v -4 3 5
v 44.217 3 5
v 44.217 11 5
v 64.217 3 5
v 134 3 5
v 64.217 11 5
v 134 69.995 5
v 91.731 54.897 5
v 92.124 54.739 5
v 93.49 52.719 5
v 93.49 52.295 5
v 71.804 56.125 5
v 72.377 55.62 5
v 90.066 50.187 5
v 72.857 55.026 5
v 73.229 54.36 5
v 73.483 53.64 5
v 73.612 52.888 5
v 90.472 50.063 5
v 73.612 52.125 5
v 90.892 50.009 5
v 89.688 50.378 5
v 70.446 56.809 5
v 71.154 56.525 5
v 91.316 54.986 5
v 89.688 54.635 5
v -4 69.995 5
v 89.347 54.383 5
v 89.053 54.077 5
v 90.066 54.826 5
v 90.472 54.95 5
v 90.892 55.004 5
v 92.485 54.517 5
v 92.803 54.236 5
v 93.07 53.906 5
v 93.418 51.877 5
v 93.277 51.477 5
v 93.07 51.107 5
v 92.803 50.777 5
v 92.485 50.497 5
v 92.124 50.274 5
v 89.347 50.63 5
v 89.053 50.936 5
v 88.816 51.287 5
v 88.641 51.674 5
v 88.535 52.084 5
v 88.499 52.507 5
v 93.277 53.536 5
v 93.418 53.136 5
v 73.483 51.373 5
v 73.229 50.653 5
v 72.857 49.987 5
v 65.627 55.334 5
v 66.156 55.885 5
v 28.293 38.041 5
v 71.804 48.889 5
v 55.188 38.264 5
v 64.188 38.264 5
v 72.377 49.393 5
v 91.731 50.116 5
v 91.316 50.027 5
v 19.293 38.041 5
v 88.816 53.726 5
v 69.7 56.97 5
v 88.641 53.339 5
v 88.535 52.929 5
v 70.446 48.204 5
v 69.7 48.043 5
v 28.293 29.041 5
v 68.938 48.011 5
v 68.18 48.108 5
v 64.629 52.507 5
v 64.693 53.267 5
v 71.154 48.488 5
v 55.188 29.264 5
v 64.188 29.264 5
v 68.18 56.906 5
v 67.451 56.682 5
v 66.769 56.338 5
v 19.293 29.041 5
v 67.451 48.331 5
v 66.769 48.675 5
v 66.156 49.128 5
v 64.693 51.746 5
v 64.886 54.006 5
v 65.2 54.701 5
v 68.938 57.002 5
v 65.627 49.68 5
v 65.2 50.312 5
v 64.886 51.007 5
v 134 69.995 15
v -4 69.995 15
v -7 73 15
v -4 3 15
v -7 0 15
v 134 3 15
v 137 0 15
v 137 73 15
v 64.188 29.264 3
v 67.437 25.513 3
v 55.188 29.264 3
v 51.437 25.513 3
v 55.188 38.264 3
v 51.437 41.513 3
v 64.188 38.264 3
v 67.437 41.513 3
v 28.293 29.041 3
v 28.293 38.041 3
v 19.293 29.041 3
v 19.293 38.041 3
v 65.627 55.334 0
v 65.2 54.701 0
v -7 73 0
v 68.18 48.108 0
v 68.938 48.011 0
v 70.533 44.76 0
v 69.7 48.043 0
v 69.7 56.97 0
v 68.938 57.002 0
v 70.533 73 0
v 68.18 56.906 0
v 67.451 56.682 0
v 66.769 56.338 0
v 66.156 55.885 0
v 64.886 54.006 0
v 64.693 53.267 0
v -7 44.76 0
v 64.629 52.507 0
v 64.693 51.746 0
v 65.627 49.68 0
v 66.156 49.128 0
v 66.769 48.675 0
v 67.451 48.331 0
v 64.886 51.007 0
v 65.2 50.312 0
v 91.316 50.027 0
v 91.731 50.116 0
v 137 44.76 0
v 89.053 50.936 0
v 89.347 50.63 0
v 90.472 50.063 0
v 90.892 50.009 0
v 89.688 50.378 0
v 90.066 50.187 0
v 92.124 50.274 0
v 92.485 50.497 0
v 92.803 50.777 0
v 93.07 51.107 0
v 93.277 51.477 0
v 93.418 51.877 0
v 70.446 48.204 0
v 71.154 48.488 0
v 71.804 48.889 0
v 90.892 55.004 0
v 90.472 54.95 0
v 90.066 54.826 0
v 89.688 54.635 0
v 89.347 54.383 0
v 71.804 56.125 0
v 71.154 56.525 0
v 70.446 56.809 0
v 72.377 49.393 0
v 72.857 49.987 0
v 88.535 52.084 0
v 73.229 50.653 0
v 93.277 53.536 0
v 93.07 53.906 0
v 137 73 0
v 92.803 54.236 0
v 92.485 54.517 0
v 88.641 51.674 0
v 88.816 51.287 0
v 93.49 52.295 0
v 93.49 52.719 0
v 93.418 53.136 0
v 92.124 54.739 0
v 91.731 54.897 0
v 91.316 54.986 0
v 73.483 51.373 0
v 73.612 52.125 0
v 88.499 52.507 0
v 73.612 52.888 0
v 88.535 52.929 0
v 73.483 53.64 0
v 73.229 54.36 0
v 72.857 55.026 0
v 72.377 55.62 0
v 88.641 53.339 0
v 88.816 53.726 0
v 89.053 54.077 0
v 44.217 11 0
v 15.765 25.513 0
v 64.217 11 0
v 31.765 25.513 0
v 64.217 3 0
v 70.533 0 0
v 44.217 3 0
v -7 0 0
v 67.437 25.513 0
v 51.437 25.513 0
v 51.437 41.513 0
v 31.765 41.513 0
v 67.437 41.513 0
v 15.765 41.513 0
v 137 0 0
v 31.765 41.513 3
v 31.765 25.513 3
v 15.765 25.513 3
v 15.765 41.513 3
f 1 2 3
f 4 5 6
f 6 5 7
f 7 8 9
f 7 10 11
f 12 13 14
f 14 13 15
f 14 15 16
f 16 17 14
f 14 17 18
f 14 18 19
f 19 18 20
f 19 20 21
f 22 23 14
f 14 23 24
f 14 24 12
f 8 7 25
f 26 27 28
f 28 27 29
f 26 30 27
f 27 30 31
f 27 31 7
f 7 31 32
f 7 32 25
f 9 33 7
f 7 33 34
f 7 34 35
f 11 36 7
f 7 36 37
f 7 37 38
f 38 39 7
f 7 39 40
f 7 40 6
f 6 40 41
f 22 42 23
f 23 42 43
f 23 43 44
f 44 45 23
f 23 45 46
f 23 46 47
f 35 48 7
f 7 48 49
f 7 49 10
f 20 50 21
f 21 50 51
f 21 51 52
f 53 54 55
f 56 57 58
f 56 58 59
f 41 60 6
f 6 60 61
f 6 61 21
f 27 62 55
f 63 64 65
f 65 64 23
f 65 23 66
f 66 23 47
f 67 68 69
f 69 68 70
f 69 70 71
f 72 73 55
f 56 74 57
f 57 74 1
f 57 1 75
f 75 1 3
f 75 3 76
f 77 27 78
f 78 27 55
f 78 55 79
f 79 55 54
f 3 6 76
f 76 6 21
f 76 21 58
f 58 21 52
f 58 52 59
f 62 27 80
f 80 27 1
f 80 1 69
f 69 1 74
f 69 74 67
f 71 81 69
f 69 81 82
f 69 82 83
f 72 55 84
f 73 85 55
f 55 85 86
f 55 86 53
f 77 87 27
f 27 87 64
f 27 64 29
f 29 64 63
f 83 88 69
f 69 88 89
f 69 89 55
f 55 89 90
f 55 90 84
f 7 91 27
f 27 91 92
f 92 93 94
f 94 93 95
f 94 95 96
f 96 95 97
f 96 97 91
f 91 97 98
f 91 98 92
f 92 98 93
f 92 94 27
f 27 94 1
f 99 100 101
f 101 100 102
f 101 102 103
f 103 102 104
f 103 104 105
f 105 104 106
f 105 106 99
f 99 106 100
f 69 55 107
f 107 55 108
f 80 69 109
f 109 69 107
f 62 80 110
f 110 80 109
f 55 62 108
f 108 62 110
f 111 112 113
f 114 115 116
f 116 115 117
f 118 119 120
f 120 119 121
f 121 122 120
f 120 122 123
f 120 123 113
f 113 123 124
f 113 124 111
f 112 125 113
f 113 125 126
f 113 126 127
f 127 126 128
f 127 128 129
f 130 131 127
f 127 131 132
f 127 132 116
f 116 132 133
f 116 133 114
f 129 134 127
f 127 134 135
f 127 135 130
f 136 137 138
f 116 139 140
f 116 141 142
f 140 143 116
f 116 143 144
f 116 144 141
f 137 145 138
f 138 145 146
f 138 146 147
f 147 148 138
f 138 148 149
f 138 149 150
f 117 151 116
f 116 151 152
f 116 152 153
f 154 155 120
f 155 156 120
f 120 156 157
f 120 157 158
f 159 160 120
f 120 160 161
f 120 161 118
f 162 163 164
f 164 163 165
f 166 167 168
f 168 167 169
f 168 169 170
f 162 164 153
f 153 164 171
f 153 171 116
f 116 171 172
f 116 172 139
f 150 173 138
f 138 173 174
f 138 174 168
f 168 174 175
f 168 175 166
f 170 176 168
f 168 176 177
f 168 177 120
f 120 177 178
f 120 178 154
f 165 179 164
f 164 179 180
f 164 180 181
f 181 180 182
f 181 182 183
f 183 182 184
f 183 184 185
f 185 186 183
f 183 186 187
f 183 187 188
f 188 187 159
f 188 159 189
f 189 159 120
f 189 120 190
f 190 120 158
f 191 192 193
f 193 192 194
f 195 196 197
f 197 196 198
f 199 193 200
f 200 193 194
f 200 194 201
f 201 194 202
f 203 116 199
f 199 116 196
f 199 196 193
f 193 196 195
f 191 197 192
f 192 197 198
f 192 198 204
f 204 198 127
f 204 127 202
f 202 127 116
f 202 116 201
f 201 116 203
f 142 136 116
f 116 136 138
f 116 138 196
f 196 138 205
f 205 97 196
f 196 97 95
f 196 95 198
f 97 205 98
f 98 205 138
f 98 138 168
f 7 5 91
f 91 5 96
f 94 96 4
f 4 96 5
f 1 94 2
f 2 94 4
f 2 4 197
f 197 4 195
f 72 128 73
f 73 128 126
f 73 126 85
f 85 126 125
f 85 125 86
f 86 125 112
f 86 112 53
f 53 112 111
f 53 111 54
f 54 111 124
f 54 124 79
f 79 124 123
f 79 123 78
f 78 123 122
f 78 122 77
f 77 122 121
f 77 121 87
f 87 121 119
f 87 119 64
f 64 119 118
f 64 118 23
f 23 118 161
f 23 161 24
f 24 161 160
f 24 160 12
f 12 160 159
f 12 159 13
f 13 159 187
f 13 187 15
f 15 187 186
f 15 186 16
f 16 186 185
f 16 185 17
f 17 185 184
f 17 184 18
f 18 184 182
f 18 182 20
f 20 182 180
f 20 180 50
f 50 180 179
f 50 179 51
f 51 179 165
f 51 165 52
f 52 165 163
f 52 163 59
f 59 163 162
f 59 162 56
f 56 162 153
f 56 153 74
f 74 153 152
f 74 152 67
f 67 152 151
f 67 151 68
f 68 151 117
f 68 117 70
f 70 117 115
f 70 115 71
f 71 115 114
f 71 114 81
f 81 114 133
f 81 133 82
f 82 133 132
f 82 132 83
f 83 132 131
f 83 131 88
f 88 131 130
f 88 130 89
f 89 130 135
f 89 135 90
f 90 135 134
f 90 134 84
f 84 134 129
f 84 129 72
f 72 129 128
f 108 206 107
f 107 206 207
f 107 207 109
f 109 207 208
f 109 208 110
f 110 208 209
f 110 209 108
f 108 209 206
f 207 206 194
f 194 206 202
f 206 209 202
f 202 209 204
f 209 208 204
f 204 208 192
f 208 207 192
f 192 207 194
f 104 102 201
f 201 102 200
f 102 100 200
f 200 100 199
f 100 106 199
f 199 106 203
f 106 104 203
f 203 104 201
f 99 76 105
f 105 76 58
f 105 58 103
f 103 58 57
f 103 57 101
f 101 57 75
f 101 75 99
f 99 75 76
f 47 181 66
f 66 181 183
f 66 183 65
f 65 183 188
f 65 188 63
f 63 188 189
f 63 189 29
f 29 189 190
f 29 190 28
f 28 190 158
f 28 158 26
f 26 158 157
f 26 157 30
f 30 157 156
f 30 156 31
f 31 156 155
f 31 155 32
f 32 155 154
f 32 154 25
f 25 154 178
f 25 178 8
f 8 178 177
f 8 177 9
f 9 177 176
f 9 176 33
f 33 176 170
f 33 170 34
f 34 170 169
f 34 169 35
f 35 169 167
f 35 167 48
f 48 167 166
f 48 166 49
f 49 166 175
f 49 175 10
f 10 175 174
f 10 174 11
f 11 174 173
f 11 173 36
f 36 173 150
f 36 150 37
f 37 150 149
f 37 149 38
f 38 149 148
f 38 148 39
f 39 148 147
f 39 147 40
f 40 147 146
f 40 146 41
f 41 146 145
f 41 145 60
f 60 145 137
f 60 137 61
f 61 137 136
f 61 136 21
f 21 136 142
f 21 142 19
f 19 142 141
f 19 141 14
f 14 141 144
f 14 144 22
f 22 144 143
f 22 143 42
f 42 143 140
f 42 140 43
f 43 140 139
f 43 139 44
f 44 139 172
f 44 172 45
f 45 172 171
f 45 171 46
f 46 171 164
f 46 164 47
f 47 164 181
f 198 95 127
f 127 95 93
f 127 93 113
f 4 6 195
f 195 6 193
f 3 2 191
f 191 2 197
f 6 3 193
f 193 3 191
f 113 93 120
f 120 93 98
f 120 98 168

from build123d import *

# Parameters (mm, degrees)
ESQUISSE1_W              = 137
ESQUISSE1_H              = 66
BOSS_EXTRU_2_DEPTH       = 15
ESQUISSE3_W              = 131
ESQUISSE3_H              = 60
ENL_V_MAT_EXTRU_1_DEPTH  = 10
ESQUISSE5_W              = 12
ESQUISSE5_H              = 12
ENL_V_MAT_EXTRU_2_DEPTH  = 10
ESQUISSE6_W              = 12
ESQUISSE6_H              = 12
ENL_V_MAT_EXTRU_3_DEPTH  = 10
ESQUISSE7_W              = 15
ESQUISSE7_H              = 3
ENL_V_MAT_EXTRU_4_DEPTH  = 10
ESQUISSE8_R              = 4.5
ENL_V_MAT_EXTRU_5_DEPTH  = 10
ESQUISSE10_W             = 3
ESQUISSE10_H             = 8
BOSS_EXTRU_3_DEPTH       = 4
ESQUISSE12_W             = 2
ESQUISSE12_H             = 6
ENL_V_MAT_EXTRU_6_DEPTH  = 4
ESQUISSE13_W             = 3
ESQUISSE13_H             = 8
BOSS_EXTRU_4_DEPTH       = 4
ESQUISSE14_W             = 2
ESQUISSE14_H             = 6
ENL_V_MAT_EXTRU_7_DEPTH  = 4
ESQUISSE16_W             = 3
ESQUISSE16_H             = 8
BOSS_EXTRU_5_DEPTH       = 4
ESQUISSE17_W             = 3
ESQUISSE17_H             = 8
BOSS_EXTRU_6_DEPTH       = 4
ESQUISSE19_W             = 2
ESQUISSE19_H             = 6
ENL_V_MAT_EXTRU_9_DEPTH  = 3
ESQUISSE20_W             = 2
ESQUISSE20_H             = 6
ENL_V_MAT_EXTRU_10_DEPTH = 3
ESQUISSE21_R             = 1.5
ENL_V_MAT_EXTRU_12_DEPTH = 21
ESQUISSE22_W             = 3
ESQUISSE22_H             = 8
ENL_V_MAT_EXTRU_13_DEPTH = 4
ESQUISSE23_W             = 3
ESQUISSE23_H             = 8
ENL_V_MAT_EXTRU_14_DEPTH = 4
ESQUISSE24_W             = 3
ESQUISSE24_H             = 8
ENL_V_MAT_EXTRU_15_DEPTH = 4
ESQUISSE25_W             = 3
ESQUISSE25_H             = 8
ENL_V_MAT_EXTRU_16_DEPTH = 4
ESQUISSE28_W             = 12
ESQUISSE28_H             = 12
BOSS_EXTRU_7_DEPTH       = 5
ESQUISSE30_W             = 9
ESQUISSE30_H             = 9
ENL_V_MAT_EXTRU_17_DEPTH = 2.5
ESQUISSE32_W             = 9
ESQUISSE32_H             = 9
ENL_V_MAT_EXTRU_18_DEPTH = 8.5
ESQUISSE33_W             = 16
ESQUISSE33_H             = 16
ENL_V_MAT_EXTRU_19_DEPTH = 3
ESQUISSE34_W             = 16
ESQUISSE34_H             = 16
ENL_V_MAT_EXTRU_20_DEPTH = 3
ESQUISSE35_W             = 9
ESQUISSE35_H             = 9
ENL_V_MAT_EXTRU_21_DEPTH = 3
ESQUISSE36_W             = 12
ESQUISSE36_H             = 12
BOSS_EXTRU_8_DEPTH       = 5
ESQUISSE37_R             = 2.5
ENL_V_MAT_EXTRU_22_DEPTH = 5
ESQUISSE39_W             = 3
ESQUISSE39_H             = 60
ENL_V_MAT_EXTRU_23_DEPTH = 10
ESQUISSE40_W             = 5
ESQUISSE40_H             = 66
BOSS_EXTRU_9_DEPTH       = 7
ESQUISSE41_W             = 3
ESQUISSE41_H             = 66
BOSS_EXTRU_10_DEPTH      = 10
ESQUISSE42_W             = 4
ESQUISSE42_H             = 3
BOSS_EXTRU_11_DEPTH      = 10
ESQUISSE43_W             = 4
ESQUISSE43_H             = 3
BOSS_EXTRU_12_DEPTH      = 10
ESQUISSE44_W             = 20
ESQUISSE44_H             = 8
ENL_V_MAT_EXTRU_24_DEPTH = 10
ESQUISSE46_W             = 138
ESQUISSE46_H             = 3
ENL_V_MAT_EXTRU_25_DEPTH = 10
ESQUISSE47_W             = 141
ESQUISSE47_H             = 5
BOSS_EXTRU_13_DEPTH      = 7
ESQUISSE48_W             = 141
ESQUISSE48_H             = 3.004636282
BOSS_EXTRU_14_DEPTH      = 10
ESQUISSE49_W             = 3
ESQUISSE49_H             = 3.995363718
BOSS_EXTRU_15_DEPTH      = 10
ESQUISSE50_W             = 3
ESQUISSE50_H             = 15
BOSS_EXTRU_16_DEPTH      = 7


with BuildPart() as part:
    # Esquisse1 → Boss.-Extru.2 (new body)
    with BuildSketch(Plane.XY):
        with Locations((68.5, 33)):
            Rectangle(ESQUISSE1_W, ESQUISSE1_H)
    extrude(amount=BOSS_EXTRU_2_DEPTH)

    # Esquisse3 → Enlèv. mat.-Extru.1 (cut)
    with BuildSketch(Plane.XY.offset(15)):
        with Locations((68.5, 33)):
            Rectangle(ESQUISSE3_W, ESQUISSE3_H)
    extrude(amount=-ENL_V_MAT_EXTRU_1_DEPTH, mode=Mode.SUBTRACT)

    # Esquisse5 → Enlèv. mat.-Extru.2 (cut)
    with BuildSketch(Plane(origin=(0, 0, 0), x_dir=(-1, 0, 0), z_dir=(0, 0, -1))):
        with Locations((-14.887820014, 52.506524993)):
            Rectangle(ESQUISSE5_W, ESQUISSE5_H)
    extrude(amount=-ENL_V_MAT_EXTRU_2_DEPTH, mode=Mode.SUBTRACT)

    # Esquisse6 → Enlèv. mat.-Extru.3 (cut)
    with BuildSketch(Plane(origin=(0, 0, 0), x_dir=(-1, 0, 0), z_dir=(0, 0, -1))):
        with Locations((-42.758546676, 52.506524993)):
            Rectangle(ESQUISSE6_W, ESQUISSE6_H)
    extrude(amount=-ENL_V_MAT_EXTRU_3_DEPTH, mode=Mode.SUBTRACT)

    # Esquisse7 → Enlèv. mat.-Extru.4 (cut)
    with BuildSketch(Plane(origin=(0, 0, 0), x_dir=(-1, 0, 0), z_dir=(0, 0, -1))):
        with Locations((-55.331883335, 4.5)):
            Rectangle(ESQUISSE7_W, ESQUISSE7_H)
    extrude(amount=-ENL_V_MAT_EXTRU_4_DEPTH, mode=Mode.SUBTRACT)

    # Esquisse8 → Enlèv. mat.-Extru.5 (cut)
    with BuildSketch(Plane(origin=(0, 0, 0), x_dir=(-1, 0, 0), z_dir=(0, 0, -1))):
        with Locations((-69.128546676, 52.506524993)):
            Circle(ESQUISSE8_R)
    extrude(amount=-ENL_V_MAT_EXTRU_5_DEPTH, mode=Mode.SUBTRACT)

    # Esquisse10 → Boss.-Extru.3 (add)
    with BuildSketch(Plane.XY.offset(5)):
        with Locations((7.387820014, 52.506524993)):
            Rectangle(ESQUISSE10_W, ESQUISSE10_H)
    extrude(amount=BOSS_EXTRU_3_DEPTH)

    # Esquisse12 → Enlèv. mat.-Extru.6 (cut)
    with BuildSketch(Plane(origin=(8.887820014, 0, 0), x_dir=(0, 0, -1), z_dir=(1, 0, 0))):
        with Locations((-7, 52.506524993)):
            Rectangle(ESQUISSE12_W, ESQUISSE12_H)
    extrude(amount=-ENL_V_MAT_EXTRU_6_DEPTH, mode=Mode.SUBTRACT)

    # Esquisse13 → Boss.-Extru.4 (add)
    with BuildSketch(Plane.XY.offset(5)):
        with Locations((22.387820014, 52.506524993)):
            Rectangle(ESQUISSE13_W, ESQUISSE13_H)
    extrude(amount=BOSS_EXTRU_4_DEPTH)

    # Esquisse14 → Enlèv. mat.-Extru.7 (cut)
    with BuildSketch(Plane(origin=(23.887820014, 0, 0), x_dir=(0, 0, -1), z_dir=(1, 0, 0))):
        with Locations((-7, 52.506524993)):
            Rectangle(ESQUISSE14_W, ESQUISSE14_H)
    extrude(amount=-ENL_V_MAT_EXTRU_7_DEPTH, mode=Mode.SUBTRACT)

    # Esquisse16 → Boss.-Extru.5 (add)
    with BuildSketch(Plane.XY.offset(5)):
        with Locations((35.258546676, 52.506524993)):
            Rectangle(ESQUISSE16_W, ESQUISSE16_H)
    extrude(amount=BOSS_EXTRU_5_DEPTH)

    # Esquisse17 → Boss.-Extru.6 (add)
    with BuildSketch(Plane.XY.offset(5)):
        with Locations((50.258546676, 52.506524993)):
            Rectangle(ESQUISSE17_W, ESQUISSE17_H)
    extrude(amount=BOSS_EXTRU_6_DEPTH)

    # Esquisse19 → Enlèv. mat.-Extru.9 (cut)
    with BuildSketch(Plane(origin=(36.758546676, 0, 0), x_dir=(0, 0, -1), z_dir=(1, 0, 0))):
        with Locations((-7, 52.506524993)):
            Rectangle(ESQUISSE19_W, ESQUISSE19_H)
    extrude(amount=-ENL_V_MAT_EXTRU_9_DEPTH, mode=Mode.SUBTRACT)

    # Esquisse20 → Enlèv. mat.-Extru.10 (cut)
    with BuildSketch(Plane(origin=(51.758546676, 0, 0), x_dir=(0, 0, -1), z_dir=(1, 0, 0))):
        with Locations((-7, 52.506524993)):
            Rectangle(ESQUISSE20_W, ESQUISSE20_H)
    extrude(amount=-ENL_V_MAT_EXTRU_10_DEPTH, mode=Mode.SUBTRACT)

    # Esquisse21 → Enlèv. mat.-Extru.12 (cut)
    with BuildSketch(Plane(origin=(0, 0, 0), x_dir=(-1, 0, 0), z_dir=(0, 0, -1))):
        with Locations((-90.998546676, 52.506524993)):
            Circle(ESQUISSE21_R)
    extrude(amount=-ENL_V_MAT_EXTRU_12_DEPTH, mode=Mode.SUBTRACT)

    # Esquisse22 → Enlèv. mat.-Extru.13 (cut)
    with BuildSketch(Plane.XY.offset(9)):
        with Locations((50.258546676, 52.506524993)):
            Rectangle(ESQUISSE22_W, ESQUISSE22_H)
    extrude(amount=-ENL_V_MAT_EXTRU_13_DEPTH, mode=Mode.SUBTRACT)

    # Esquisse23 → Enlèv. mat.-Extru.14 (cut)
    with BuildSketch(Plane.XY.offset(9)):
        with Locations((35.258546676, 52.506524993)):
            Rectangle(ESQUISSE23_W, ESQUISSE23_H)
    extrude(amount=-ENL_V_MAT_EXTRU_14_DEPTH, mode=Mode.SUBTRACT)

    # Esquisse24 → Enlèv. mat.-Extru.15 (cut)
    with BuildSketch(Plane.XY.offset(9)):
        with Locations((22.387820014, 52.506524993)):
            Rectangle(ESQUISSE24_W, ESQUISSE24_H)
    extrude(amount=-ENL_V_MAT_EXTRU_15_DEPTH, mode=Mode.SUBTRACT)

    # Esquisse25 → Enlèv. mat.-Extru.16 (cut)
    with BuildSketch(Plane.XY.offset(9)):
        with Locations((7.387820014, 52.506524993)):
            Rectangle(ESQUISSE25_W, ESQUISSE25_H)
    extrude(amount=-ENL_V_MAT_EXTRU_16_DEPTH, mode=Mode.SUBTRACT)

    # Esquisse28 → Boss.-Extru.7 (add)
    with BuildSketch(Plane(origin=(0, 0, 0), x_dir=(-1, 0, 0), z_dir=(0, 0, -1))):
        with Locations((-14.887820014, 52.506524993)):
            Rectangle(ESQUISSE28_W, ESQUISSE28_H)
    extrude(amount=-BOSS_EXTRU_7_DEPTH)

    # Esquisse30 → Enlèv. mat.-Extru.17 (cut)
    with BuildSketch(Plane.XY.offset(5)):
        with Locations((23.793387087, 33.541365404)):
            Rectangle(ESQUISSE30_W, ESQUISSE30_H)
    extrude(amount=-ENL_V_MAT_EXTRU_17_DEPTH, mode=Mode.SUBTRACT)

    # Esquisse32 → Enlèv. mat.-Extru.18 (cut)
    with BuildSketch(Plane.XY.offset(5)):
        with Locations((23.793387087, 33.541365404)):
            Rectangle(ESQUISSE32_W, ESQUISSE32_H)
    extrude(amount=-ENL_V_MAT_EXTRU_18_DEPTH, mode=Mode.SUBTRACT)

    # Esquisse33 → Enlèv. mat.-Extru.19 (cut)
    with BuildSketch(Plane(origin=(0, 0, 0), x_dir=(-1, 0, 0), z_dir=(0, 0, -1))):
        with Locations((-23.76482076, 33.512799076)):
            Rectangle(ESQUISSE33_W, ESQUISSE33_H)
    extrude(amount=-ENL_V_MAT_EXTRU_19_DEPTH, mode=Mode.SUBTRACT)

    # Esquisse34 → Enlèv. mat.-Extru.20 (cut)
    with BuildSketch(Plane(origin=(0, 0, 0), x_dir=(-1, 0, 0), z_dir=(0, 0, -1))):
        with Locations((-59.43745725, 33.512799076)):
            Rectangle(ESQUISSE34_W, ESQUISSE34_H)
    extrude(amount=-ENL_V_MAT_EXTRU_20_DEPTH, mode=Mode.SUBTRACT)

    # Esquisse35 → Enlèv. mat.-Extru.21 (cut)
    with BuildSketch(Plane(origin=(0, 0, 3), x_dir=(-1, 0, 0), z_dir=(0, 0, -1))):
        with Locations((-59.688365981, 33.763707808)):
            Rectangle(ESQUISSE35_W, ESQUISSE35_H)
    extrude(amount=-ENL_V_MAT_EXTRU_21_DEPTH, mode=Mode.SUBTRACT)

    # Esquisse36 → Boss.-Extru.8 (add)
    with BuildSketch(Plane(origin=(0, 0, 0), x_dir=(-1, 0, 0), z_dir=(0, 0, -1))):
        with Locations((-42.758546676, 52.506524993)):
            Rectangle(ESQUISSE36_W, ESQUISSE36_H)
    extrude(amount=-BOSS_EXTRU_8_DEPTH)

    # Esquisse37 → Enlèv. mat.-Extru.22 (cut)
    with BuildSketch(Plane(origin=(0, 0, 0), x_dir=(-1, 0, 0), z_dir=(0, 0, -1))):
        with Locations((-90.998546676, 52.506524993)):
            Circle(ESQUISSE37_R)
    extrude(amount=-ENL_V_MAT_EXTRU_22_DEPTH, mode=Mode.SUBTRACT)

    # Esquisse39 → Enlèv. mat.-Extru.23 (cut)
    with BuildSketch(Plane.XY.offset(15)):
        with Locations((1.5, 33)):
            Rectangle(ESQUISSE39_W, ESQUISSE39_H)
    extrude(amount=-ENL_V_MAT_EXTRU_23_DEPTH, mode=Mode.SUBTRACT)

    # Esquisse40 → Boss.-Extru.9 (add)
    with BuildSketch(Plane.ZY):
        with Locations((2.5, 33)):
            Rectangle(ESQUISSE40_W, ESQUISSE40_H)
    extrude(amount=BOSS_EXTRU_9_DEPTH)

    # Esquisse41 → Boss.-Extru.10 (add)
    with BuildSketch(Plane.XY.offset(5)):
        with Locations((-5.5, 33)):
            Rectangle(ESQUISSE41_W, ESQUISSE41_H)
    extrude(amount=BOSS_EXTRU_10_DEPTH)

    # Esquisse42 → Boss.-Extru.11 (add)
    with BuildSketch(Plane.XY.offset(5)):
        with Locations((-2, 1.5)):
            Rectangle(ESQUISSE42_W, ESQUISSE42_H)
    extrude(amount=BOSS_EXTRU_11_DEPTH)

    # Esquisse43 → Boss.-Extru.12 (add)
    with BuildSketch(Plane.XY.offset(5)):
        with Locations((-2, 64.5)):
            Rectangle(ESQUISSE43_W, ESQUISSE43_H)
    extrude(amount=BOSS_EXTRU_12_DEPTH)

    # Esquisse44 → Enlèv. mat.-Extru.24 (cut)
    with BuildSketch(Plane.XY.offset(5)):
        with Locations((54.216853372, 7)):
            Rectangle(ESQUISSE44_W, ESQUISSE44_H)
    extrude(amount=-ENL_V_MAT_EXTRU_24_DEPTH, mode=Mode.SUBTRACT)

    # Esquisse46 → Enlèv. mat.-Extru.25 (cut)
    with BuildSketch(Plane.XY.offset(5)):
        with Locations((65, 64.5)):
            Rectangle(ESQUISSE46_W, ESQUISSE46_H)
    extrude(amount=ENL_V_MAT_EXTRU_25_DEPTH, mode=Mode.SUBTRACT)

    # Esquisse47 → Boss.-Extru.13 (add)
    with BuildSketch(Plane(origin=(0, 66, 0), x_dir=(1, 0, 0), z_dir=(0, 1, 0))):
        with Locations((63.5, -2.5)):
            Rectangle(ESQUISSE47_W, ESQUISSE47_H)
    extrude(amount=BOSS_EXTRU_13_DEPTH)

    # Esquisse48 → Boss.-Extru.14 (add)
    with BuildSketch(Plane.XY.offset(5)):
        with Locations((63.5, 71.497681859)):
            Rectangle(ESQUISSE48_W, ESQUISSE48_H)
    extrude(amount=BOSS_EXTRU_14_DEPTH)

    # Esquisse49 → Boss.-Extru.15 (add)
    with BuildSketch(Plane.XY.offset(5)):
        with Locations((-5.5, 67.997681859)):
            Rectangle(ESQUISSE49_W, ESQUISSE49_H)
    extrude(amount=BOSS_EXTRU_15_DEPTH)

    # Esquisse50 → Boss.-Extru.16 (add)
    with BuildSketch(Plane(origin=(0, 66, 0), x_dir=(1, 0, 0), z_dir=(0, 1, 0))):
        with Locations((135.5, -7.5)):
            Rectangle(ESQUISSE50_W, ESQUISSE50_H)
    extrude(amount=BOSS_EXTRU_16_DEPTH)


solid = part.part
